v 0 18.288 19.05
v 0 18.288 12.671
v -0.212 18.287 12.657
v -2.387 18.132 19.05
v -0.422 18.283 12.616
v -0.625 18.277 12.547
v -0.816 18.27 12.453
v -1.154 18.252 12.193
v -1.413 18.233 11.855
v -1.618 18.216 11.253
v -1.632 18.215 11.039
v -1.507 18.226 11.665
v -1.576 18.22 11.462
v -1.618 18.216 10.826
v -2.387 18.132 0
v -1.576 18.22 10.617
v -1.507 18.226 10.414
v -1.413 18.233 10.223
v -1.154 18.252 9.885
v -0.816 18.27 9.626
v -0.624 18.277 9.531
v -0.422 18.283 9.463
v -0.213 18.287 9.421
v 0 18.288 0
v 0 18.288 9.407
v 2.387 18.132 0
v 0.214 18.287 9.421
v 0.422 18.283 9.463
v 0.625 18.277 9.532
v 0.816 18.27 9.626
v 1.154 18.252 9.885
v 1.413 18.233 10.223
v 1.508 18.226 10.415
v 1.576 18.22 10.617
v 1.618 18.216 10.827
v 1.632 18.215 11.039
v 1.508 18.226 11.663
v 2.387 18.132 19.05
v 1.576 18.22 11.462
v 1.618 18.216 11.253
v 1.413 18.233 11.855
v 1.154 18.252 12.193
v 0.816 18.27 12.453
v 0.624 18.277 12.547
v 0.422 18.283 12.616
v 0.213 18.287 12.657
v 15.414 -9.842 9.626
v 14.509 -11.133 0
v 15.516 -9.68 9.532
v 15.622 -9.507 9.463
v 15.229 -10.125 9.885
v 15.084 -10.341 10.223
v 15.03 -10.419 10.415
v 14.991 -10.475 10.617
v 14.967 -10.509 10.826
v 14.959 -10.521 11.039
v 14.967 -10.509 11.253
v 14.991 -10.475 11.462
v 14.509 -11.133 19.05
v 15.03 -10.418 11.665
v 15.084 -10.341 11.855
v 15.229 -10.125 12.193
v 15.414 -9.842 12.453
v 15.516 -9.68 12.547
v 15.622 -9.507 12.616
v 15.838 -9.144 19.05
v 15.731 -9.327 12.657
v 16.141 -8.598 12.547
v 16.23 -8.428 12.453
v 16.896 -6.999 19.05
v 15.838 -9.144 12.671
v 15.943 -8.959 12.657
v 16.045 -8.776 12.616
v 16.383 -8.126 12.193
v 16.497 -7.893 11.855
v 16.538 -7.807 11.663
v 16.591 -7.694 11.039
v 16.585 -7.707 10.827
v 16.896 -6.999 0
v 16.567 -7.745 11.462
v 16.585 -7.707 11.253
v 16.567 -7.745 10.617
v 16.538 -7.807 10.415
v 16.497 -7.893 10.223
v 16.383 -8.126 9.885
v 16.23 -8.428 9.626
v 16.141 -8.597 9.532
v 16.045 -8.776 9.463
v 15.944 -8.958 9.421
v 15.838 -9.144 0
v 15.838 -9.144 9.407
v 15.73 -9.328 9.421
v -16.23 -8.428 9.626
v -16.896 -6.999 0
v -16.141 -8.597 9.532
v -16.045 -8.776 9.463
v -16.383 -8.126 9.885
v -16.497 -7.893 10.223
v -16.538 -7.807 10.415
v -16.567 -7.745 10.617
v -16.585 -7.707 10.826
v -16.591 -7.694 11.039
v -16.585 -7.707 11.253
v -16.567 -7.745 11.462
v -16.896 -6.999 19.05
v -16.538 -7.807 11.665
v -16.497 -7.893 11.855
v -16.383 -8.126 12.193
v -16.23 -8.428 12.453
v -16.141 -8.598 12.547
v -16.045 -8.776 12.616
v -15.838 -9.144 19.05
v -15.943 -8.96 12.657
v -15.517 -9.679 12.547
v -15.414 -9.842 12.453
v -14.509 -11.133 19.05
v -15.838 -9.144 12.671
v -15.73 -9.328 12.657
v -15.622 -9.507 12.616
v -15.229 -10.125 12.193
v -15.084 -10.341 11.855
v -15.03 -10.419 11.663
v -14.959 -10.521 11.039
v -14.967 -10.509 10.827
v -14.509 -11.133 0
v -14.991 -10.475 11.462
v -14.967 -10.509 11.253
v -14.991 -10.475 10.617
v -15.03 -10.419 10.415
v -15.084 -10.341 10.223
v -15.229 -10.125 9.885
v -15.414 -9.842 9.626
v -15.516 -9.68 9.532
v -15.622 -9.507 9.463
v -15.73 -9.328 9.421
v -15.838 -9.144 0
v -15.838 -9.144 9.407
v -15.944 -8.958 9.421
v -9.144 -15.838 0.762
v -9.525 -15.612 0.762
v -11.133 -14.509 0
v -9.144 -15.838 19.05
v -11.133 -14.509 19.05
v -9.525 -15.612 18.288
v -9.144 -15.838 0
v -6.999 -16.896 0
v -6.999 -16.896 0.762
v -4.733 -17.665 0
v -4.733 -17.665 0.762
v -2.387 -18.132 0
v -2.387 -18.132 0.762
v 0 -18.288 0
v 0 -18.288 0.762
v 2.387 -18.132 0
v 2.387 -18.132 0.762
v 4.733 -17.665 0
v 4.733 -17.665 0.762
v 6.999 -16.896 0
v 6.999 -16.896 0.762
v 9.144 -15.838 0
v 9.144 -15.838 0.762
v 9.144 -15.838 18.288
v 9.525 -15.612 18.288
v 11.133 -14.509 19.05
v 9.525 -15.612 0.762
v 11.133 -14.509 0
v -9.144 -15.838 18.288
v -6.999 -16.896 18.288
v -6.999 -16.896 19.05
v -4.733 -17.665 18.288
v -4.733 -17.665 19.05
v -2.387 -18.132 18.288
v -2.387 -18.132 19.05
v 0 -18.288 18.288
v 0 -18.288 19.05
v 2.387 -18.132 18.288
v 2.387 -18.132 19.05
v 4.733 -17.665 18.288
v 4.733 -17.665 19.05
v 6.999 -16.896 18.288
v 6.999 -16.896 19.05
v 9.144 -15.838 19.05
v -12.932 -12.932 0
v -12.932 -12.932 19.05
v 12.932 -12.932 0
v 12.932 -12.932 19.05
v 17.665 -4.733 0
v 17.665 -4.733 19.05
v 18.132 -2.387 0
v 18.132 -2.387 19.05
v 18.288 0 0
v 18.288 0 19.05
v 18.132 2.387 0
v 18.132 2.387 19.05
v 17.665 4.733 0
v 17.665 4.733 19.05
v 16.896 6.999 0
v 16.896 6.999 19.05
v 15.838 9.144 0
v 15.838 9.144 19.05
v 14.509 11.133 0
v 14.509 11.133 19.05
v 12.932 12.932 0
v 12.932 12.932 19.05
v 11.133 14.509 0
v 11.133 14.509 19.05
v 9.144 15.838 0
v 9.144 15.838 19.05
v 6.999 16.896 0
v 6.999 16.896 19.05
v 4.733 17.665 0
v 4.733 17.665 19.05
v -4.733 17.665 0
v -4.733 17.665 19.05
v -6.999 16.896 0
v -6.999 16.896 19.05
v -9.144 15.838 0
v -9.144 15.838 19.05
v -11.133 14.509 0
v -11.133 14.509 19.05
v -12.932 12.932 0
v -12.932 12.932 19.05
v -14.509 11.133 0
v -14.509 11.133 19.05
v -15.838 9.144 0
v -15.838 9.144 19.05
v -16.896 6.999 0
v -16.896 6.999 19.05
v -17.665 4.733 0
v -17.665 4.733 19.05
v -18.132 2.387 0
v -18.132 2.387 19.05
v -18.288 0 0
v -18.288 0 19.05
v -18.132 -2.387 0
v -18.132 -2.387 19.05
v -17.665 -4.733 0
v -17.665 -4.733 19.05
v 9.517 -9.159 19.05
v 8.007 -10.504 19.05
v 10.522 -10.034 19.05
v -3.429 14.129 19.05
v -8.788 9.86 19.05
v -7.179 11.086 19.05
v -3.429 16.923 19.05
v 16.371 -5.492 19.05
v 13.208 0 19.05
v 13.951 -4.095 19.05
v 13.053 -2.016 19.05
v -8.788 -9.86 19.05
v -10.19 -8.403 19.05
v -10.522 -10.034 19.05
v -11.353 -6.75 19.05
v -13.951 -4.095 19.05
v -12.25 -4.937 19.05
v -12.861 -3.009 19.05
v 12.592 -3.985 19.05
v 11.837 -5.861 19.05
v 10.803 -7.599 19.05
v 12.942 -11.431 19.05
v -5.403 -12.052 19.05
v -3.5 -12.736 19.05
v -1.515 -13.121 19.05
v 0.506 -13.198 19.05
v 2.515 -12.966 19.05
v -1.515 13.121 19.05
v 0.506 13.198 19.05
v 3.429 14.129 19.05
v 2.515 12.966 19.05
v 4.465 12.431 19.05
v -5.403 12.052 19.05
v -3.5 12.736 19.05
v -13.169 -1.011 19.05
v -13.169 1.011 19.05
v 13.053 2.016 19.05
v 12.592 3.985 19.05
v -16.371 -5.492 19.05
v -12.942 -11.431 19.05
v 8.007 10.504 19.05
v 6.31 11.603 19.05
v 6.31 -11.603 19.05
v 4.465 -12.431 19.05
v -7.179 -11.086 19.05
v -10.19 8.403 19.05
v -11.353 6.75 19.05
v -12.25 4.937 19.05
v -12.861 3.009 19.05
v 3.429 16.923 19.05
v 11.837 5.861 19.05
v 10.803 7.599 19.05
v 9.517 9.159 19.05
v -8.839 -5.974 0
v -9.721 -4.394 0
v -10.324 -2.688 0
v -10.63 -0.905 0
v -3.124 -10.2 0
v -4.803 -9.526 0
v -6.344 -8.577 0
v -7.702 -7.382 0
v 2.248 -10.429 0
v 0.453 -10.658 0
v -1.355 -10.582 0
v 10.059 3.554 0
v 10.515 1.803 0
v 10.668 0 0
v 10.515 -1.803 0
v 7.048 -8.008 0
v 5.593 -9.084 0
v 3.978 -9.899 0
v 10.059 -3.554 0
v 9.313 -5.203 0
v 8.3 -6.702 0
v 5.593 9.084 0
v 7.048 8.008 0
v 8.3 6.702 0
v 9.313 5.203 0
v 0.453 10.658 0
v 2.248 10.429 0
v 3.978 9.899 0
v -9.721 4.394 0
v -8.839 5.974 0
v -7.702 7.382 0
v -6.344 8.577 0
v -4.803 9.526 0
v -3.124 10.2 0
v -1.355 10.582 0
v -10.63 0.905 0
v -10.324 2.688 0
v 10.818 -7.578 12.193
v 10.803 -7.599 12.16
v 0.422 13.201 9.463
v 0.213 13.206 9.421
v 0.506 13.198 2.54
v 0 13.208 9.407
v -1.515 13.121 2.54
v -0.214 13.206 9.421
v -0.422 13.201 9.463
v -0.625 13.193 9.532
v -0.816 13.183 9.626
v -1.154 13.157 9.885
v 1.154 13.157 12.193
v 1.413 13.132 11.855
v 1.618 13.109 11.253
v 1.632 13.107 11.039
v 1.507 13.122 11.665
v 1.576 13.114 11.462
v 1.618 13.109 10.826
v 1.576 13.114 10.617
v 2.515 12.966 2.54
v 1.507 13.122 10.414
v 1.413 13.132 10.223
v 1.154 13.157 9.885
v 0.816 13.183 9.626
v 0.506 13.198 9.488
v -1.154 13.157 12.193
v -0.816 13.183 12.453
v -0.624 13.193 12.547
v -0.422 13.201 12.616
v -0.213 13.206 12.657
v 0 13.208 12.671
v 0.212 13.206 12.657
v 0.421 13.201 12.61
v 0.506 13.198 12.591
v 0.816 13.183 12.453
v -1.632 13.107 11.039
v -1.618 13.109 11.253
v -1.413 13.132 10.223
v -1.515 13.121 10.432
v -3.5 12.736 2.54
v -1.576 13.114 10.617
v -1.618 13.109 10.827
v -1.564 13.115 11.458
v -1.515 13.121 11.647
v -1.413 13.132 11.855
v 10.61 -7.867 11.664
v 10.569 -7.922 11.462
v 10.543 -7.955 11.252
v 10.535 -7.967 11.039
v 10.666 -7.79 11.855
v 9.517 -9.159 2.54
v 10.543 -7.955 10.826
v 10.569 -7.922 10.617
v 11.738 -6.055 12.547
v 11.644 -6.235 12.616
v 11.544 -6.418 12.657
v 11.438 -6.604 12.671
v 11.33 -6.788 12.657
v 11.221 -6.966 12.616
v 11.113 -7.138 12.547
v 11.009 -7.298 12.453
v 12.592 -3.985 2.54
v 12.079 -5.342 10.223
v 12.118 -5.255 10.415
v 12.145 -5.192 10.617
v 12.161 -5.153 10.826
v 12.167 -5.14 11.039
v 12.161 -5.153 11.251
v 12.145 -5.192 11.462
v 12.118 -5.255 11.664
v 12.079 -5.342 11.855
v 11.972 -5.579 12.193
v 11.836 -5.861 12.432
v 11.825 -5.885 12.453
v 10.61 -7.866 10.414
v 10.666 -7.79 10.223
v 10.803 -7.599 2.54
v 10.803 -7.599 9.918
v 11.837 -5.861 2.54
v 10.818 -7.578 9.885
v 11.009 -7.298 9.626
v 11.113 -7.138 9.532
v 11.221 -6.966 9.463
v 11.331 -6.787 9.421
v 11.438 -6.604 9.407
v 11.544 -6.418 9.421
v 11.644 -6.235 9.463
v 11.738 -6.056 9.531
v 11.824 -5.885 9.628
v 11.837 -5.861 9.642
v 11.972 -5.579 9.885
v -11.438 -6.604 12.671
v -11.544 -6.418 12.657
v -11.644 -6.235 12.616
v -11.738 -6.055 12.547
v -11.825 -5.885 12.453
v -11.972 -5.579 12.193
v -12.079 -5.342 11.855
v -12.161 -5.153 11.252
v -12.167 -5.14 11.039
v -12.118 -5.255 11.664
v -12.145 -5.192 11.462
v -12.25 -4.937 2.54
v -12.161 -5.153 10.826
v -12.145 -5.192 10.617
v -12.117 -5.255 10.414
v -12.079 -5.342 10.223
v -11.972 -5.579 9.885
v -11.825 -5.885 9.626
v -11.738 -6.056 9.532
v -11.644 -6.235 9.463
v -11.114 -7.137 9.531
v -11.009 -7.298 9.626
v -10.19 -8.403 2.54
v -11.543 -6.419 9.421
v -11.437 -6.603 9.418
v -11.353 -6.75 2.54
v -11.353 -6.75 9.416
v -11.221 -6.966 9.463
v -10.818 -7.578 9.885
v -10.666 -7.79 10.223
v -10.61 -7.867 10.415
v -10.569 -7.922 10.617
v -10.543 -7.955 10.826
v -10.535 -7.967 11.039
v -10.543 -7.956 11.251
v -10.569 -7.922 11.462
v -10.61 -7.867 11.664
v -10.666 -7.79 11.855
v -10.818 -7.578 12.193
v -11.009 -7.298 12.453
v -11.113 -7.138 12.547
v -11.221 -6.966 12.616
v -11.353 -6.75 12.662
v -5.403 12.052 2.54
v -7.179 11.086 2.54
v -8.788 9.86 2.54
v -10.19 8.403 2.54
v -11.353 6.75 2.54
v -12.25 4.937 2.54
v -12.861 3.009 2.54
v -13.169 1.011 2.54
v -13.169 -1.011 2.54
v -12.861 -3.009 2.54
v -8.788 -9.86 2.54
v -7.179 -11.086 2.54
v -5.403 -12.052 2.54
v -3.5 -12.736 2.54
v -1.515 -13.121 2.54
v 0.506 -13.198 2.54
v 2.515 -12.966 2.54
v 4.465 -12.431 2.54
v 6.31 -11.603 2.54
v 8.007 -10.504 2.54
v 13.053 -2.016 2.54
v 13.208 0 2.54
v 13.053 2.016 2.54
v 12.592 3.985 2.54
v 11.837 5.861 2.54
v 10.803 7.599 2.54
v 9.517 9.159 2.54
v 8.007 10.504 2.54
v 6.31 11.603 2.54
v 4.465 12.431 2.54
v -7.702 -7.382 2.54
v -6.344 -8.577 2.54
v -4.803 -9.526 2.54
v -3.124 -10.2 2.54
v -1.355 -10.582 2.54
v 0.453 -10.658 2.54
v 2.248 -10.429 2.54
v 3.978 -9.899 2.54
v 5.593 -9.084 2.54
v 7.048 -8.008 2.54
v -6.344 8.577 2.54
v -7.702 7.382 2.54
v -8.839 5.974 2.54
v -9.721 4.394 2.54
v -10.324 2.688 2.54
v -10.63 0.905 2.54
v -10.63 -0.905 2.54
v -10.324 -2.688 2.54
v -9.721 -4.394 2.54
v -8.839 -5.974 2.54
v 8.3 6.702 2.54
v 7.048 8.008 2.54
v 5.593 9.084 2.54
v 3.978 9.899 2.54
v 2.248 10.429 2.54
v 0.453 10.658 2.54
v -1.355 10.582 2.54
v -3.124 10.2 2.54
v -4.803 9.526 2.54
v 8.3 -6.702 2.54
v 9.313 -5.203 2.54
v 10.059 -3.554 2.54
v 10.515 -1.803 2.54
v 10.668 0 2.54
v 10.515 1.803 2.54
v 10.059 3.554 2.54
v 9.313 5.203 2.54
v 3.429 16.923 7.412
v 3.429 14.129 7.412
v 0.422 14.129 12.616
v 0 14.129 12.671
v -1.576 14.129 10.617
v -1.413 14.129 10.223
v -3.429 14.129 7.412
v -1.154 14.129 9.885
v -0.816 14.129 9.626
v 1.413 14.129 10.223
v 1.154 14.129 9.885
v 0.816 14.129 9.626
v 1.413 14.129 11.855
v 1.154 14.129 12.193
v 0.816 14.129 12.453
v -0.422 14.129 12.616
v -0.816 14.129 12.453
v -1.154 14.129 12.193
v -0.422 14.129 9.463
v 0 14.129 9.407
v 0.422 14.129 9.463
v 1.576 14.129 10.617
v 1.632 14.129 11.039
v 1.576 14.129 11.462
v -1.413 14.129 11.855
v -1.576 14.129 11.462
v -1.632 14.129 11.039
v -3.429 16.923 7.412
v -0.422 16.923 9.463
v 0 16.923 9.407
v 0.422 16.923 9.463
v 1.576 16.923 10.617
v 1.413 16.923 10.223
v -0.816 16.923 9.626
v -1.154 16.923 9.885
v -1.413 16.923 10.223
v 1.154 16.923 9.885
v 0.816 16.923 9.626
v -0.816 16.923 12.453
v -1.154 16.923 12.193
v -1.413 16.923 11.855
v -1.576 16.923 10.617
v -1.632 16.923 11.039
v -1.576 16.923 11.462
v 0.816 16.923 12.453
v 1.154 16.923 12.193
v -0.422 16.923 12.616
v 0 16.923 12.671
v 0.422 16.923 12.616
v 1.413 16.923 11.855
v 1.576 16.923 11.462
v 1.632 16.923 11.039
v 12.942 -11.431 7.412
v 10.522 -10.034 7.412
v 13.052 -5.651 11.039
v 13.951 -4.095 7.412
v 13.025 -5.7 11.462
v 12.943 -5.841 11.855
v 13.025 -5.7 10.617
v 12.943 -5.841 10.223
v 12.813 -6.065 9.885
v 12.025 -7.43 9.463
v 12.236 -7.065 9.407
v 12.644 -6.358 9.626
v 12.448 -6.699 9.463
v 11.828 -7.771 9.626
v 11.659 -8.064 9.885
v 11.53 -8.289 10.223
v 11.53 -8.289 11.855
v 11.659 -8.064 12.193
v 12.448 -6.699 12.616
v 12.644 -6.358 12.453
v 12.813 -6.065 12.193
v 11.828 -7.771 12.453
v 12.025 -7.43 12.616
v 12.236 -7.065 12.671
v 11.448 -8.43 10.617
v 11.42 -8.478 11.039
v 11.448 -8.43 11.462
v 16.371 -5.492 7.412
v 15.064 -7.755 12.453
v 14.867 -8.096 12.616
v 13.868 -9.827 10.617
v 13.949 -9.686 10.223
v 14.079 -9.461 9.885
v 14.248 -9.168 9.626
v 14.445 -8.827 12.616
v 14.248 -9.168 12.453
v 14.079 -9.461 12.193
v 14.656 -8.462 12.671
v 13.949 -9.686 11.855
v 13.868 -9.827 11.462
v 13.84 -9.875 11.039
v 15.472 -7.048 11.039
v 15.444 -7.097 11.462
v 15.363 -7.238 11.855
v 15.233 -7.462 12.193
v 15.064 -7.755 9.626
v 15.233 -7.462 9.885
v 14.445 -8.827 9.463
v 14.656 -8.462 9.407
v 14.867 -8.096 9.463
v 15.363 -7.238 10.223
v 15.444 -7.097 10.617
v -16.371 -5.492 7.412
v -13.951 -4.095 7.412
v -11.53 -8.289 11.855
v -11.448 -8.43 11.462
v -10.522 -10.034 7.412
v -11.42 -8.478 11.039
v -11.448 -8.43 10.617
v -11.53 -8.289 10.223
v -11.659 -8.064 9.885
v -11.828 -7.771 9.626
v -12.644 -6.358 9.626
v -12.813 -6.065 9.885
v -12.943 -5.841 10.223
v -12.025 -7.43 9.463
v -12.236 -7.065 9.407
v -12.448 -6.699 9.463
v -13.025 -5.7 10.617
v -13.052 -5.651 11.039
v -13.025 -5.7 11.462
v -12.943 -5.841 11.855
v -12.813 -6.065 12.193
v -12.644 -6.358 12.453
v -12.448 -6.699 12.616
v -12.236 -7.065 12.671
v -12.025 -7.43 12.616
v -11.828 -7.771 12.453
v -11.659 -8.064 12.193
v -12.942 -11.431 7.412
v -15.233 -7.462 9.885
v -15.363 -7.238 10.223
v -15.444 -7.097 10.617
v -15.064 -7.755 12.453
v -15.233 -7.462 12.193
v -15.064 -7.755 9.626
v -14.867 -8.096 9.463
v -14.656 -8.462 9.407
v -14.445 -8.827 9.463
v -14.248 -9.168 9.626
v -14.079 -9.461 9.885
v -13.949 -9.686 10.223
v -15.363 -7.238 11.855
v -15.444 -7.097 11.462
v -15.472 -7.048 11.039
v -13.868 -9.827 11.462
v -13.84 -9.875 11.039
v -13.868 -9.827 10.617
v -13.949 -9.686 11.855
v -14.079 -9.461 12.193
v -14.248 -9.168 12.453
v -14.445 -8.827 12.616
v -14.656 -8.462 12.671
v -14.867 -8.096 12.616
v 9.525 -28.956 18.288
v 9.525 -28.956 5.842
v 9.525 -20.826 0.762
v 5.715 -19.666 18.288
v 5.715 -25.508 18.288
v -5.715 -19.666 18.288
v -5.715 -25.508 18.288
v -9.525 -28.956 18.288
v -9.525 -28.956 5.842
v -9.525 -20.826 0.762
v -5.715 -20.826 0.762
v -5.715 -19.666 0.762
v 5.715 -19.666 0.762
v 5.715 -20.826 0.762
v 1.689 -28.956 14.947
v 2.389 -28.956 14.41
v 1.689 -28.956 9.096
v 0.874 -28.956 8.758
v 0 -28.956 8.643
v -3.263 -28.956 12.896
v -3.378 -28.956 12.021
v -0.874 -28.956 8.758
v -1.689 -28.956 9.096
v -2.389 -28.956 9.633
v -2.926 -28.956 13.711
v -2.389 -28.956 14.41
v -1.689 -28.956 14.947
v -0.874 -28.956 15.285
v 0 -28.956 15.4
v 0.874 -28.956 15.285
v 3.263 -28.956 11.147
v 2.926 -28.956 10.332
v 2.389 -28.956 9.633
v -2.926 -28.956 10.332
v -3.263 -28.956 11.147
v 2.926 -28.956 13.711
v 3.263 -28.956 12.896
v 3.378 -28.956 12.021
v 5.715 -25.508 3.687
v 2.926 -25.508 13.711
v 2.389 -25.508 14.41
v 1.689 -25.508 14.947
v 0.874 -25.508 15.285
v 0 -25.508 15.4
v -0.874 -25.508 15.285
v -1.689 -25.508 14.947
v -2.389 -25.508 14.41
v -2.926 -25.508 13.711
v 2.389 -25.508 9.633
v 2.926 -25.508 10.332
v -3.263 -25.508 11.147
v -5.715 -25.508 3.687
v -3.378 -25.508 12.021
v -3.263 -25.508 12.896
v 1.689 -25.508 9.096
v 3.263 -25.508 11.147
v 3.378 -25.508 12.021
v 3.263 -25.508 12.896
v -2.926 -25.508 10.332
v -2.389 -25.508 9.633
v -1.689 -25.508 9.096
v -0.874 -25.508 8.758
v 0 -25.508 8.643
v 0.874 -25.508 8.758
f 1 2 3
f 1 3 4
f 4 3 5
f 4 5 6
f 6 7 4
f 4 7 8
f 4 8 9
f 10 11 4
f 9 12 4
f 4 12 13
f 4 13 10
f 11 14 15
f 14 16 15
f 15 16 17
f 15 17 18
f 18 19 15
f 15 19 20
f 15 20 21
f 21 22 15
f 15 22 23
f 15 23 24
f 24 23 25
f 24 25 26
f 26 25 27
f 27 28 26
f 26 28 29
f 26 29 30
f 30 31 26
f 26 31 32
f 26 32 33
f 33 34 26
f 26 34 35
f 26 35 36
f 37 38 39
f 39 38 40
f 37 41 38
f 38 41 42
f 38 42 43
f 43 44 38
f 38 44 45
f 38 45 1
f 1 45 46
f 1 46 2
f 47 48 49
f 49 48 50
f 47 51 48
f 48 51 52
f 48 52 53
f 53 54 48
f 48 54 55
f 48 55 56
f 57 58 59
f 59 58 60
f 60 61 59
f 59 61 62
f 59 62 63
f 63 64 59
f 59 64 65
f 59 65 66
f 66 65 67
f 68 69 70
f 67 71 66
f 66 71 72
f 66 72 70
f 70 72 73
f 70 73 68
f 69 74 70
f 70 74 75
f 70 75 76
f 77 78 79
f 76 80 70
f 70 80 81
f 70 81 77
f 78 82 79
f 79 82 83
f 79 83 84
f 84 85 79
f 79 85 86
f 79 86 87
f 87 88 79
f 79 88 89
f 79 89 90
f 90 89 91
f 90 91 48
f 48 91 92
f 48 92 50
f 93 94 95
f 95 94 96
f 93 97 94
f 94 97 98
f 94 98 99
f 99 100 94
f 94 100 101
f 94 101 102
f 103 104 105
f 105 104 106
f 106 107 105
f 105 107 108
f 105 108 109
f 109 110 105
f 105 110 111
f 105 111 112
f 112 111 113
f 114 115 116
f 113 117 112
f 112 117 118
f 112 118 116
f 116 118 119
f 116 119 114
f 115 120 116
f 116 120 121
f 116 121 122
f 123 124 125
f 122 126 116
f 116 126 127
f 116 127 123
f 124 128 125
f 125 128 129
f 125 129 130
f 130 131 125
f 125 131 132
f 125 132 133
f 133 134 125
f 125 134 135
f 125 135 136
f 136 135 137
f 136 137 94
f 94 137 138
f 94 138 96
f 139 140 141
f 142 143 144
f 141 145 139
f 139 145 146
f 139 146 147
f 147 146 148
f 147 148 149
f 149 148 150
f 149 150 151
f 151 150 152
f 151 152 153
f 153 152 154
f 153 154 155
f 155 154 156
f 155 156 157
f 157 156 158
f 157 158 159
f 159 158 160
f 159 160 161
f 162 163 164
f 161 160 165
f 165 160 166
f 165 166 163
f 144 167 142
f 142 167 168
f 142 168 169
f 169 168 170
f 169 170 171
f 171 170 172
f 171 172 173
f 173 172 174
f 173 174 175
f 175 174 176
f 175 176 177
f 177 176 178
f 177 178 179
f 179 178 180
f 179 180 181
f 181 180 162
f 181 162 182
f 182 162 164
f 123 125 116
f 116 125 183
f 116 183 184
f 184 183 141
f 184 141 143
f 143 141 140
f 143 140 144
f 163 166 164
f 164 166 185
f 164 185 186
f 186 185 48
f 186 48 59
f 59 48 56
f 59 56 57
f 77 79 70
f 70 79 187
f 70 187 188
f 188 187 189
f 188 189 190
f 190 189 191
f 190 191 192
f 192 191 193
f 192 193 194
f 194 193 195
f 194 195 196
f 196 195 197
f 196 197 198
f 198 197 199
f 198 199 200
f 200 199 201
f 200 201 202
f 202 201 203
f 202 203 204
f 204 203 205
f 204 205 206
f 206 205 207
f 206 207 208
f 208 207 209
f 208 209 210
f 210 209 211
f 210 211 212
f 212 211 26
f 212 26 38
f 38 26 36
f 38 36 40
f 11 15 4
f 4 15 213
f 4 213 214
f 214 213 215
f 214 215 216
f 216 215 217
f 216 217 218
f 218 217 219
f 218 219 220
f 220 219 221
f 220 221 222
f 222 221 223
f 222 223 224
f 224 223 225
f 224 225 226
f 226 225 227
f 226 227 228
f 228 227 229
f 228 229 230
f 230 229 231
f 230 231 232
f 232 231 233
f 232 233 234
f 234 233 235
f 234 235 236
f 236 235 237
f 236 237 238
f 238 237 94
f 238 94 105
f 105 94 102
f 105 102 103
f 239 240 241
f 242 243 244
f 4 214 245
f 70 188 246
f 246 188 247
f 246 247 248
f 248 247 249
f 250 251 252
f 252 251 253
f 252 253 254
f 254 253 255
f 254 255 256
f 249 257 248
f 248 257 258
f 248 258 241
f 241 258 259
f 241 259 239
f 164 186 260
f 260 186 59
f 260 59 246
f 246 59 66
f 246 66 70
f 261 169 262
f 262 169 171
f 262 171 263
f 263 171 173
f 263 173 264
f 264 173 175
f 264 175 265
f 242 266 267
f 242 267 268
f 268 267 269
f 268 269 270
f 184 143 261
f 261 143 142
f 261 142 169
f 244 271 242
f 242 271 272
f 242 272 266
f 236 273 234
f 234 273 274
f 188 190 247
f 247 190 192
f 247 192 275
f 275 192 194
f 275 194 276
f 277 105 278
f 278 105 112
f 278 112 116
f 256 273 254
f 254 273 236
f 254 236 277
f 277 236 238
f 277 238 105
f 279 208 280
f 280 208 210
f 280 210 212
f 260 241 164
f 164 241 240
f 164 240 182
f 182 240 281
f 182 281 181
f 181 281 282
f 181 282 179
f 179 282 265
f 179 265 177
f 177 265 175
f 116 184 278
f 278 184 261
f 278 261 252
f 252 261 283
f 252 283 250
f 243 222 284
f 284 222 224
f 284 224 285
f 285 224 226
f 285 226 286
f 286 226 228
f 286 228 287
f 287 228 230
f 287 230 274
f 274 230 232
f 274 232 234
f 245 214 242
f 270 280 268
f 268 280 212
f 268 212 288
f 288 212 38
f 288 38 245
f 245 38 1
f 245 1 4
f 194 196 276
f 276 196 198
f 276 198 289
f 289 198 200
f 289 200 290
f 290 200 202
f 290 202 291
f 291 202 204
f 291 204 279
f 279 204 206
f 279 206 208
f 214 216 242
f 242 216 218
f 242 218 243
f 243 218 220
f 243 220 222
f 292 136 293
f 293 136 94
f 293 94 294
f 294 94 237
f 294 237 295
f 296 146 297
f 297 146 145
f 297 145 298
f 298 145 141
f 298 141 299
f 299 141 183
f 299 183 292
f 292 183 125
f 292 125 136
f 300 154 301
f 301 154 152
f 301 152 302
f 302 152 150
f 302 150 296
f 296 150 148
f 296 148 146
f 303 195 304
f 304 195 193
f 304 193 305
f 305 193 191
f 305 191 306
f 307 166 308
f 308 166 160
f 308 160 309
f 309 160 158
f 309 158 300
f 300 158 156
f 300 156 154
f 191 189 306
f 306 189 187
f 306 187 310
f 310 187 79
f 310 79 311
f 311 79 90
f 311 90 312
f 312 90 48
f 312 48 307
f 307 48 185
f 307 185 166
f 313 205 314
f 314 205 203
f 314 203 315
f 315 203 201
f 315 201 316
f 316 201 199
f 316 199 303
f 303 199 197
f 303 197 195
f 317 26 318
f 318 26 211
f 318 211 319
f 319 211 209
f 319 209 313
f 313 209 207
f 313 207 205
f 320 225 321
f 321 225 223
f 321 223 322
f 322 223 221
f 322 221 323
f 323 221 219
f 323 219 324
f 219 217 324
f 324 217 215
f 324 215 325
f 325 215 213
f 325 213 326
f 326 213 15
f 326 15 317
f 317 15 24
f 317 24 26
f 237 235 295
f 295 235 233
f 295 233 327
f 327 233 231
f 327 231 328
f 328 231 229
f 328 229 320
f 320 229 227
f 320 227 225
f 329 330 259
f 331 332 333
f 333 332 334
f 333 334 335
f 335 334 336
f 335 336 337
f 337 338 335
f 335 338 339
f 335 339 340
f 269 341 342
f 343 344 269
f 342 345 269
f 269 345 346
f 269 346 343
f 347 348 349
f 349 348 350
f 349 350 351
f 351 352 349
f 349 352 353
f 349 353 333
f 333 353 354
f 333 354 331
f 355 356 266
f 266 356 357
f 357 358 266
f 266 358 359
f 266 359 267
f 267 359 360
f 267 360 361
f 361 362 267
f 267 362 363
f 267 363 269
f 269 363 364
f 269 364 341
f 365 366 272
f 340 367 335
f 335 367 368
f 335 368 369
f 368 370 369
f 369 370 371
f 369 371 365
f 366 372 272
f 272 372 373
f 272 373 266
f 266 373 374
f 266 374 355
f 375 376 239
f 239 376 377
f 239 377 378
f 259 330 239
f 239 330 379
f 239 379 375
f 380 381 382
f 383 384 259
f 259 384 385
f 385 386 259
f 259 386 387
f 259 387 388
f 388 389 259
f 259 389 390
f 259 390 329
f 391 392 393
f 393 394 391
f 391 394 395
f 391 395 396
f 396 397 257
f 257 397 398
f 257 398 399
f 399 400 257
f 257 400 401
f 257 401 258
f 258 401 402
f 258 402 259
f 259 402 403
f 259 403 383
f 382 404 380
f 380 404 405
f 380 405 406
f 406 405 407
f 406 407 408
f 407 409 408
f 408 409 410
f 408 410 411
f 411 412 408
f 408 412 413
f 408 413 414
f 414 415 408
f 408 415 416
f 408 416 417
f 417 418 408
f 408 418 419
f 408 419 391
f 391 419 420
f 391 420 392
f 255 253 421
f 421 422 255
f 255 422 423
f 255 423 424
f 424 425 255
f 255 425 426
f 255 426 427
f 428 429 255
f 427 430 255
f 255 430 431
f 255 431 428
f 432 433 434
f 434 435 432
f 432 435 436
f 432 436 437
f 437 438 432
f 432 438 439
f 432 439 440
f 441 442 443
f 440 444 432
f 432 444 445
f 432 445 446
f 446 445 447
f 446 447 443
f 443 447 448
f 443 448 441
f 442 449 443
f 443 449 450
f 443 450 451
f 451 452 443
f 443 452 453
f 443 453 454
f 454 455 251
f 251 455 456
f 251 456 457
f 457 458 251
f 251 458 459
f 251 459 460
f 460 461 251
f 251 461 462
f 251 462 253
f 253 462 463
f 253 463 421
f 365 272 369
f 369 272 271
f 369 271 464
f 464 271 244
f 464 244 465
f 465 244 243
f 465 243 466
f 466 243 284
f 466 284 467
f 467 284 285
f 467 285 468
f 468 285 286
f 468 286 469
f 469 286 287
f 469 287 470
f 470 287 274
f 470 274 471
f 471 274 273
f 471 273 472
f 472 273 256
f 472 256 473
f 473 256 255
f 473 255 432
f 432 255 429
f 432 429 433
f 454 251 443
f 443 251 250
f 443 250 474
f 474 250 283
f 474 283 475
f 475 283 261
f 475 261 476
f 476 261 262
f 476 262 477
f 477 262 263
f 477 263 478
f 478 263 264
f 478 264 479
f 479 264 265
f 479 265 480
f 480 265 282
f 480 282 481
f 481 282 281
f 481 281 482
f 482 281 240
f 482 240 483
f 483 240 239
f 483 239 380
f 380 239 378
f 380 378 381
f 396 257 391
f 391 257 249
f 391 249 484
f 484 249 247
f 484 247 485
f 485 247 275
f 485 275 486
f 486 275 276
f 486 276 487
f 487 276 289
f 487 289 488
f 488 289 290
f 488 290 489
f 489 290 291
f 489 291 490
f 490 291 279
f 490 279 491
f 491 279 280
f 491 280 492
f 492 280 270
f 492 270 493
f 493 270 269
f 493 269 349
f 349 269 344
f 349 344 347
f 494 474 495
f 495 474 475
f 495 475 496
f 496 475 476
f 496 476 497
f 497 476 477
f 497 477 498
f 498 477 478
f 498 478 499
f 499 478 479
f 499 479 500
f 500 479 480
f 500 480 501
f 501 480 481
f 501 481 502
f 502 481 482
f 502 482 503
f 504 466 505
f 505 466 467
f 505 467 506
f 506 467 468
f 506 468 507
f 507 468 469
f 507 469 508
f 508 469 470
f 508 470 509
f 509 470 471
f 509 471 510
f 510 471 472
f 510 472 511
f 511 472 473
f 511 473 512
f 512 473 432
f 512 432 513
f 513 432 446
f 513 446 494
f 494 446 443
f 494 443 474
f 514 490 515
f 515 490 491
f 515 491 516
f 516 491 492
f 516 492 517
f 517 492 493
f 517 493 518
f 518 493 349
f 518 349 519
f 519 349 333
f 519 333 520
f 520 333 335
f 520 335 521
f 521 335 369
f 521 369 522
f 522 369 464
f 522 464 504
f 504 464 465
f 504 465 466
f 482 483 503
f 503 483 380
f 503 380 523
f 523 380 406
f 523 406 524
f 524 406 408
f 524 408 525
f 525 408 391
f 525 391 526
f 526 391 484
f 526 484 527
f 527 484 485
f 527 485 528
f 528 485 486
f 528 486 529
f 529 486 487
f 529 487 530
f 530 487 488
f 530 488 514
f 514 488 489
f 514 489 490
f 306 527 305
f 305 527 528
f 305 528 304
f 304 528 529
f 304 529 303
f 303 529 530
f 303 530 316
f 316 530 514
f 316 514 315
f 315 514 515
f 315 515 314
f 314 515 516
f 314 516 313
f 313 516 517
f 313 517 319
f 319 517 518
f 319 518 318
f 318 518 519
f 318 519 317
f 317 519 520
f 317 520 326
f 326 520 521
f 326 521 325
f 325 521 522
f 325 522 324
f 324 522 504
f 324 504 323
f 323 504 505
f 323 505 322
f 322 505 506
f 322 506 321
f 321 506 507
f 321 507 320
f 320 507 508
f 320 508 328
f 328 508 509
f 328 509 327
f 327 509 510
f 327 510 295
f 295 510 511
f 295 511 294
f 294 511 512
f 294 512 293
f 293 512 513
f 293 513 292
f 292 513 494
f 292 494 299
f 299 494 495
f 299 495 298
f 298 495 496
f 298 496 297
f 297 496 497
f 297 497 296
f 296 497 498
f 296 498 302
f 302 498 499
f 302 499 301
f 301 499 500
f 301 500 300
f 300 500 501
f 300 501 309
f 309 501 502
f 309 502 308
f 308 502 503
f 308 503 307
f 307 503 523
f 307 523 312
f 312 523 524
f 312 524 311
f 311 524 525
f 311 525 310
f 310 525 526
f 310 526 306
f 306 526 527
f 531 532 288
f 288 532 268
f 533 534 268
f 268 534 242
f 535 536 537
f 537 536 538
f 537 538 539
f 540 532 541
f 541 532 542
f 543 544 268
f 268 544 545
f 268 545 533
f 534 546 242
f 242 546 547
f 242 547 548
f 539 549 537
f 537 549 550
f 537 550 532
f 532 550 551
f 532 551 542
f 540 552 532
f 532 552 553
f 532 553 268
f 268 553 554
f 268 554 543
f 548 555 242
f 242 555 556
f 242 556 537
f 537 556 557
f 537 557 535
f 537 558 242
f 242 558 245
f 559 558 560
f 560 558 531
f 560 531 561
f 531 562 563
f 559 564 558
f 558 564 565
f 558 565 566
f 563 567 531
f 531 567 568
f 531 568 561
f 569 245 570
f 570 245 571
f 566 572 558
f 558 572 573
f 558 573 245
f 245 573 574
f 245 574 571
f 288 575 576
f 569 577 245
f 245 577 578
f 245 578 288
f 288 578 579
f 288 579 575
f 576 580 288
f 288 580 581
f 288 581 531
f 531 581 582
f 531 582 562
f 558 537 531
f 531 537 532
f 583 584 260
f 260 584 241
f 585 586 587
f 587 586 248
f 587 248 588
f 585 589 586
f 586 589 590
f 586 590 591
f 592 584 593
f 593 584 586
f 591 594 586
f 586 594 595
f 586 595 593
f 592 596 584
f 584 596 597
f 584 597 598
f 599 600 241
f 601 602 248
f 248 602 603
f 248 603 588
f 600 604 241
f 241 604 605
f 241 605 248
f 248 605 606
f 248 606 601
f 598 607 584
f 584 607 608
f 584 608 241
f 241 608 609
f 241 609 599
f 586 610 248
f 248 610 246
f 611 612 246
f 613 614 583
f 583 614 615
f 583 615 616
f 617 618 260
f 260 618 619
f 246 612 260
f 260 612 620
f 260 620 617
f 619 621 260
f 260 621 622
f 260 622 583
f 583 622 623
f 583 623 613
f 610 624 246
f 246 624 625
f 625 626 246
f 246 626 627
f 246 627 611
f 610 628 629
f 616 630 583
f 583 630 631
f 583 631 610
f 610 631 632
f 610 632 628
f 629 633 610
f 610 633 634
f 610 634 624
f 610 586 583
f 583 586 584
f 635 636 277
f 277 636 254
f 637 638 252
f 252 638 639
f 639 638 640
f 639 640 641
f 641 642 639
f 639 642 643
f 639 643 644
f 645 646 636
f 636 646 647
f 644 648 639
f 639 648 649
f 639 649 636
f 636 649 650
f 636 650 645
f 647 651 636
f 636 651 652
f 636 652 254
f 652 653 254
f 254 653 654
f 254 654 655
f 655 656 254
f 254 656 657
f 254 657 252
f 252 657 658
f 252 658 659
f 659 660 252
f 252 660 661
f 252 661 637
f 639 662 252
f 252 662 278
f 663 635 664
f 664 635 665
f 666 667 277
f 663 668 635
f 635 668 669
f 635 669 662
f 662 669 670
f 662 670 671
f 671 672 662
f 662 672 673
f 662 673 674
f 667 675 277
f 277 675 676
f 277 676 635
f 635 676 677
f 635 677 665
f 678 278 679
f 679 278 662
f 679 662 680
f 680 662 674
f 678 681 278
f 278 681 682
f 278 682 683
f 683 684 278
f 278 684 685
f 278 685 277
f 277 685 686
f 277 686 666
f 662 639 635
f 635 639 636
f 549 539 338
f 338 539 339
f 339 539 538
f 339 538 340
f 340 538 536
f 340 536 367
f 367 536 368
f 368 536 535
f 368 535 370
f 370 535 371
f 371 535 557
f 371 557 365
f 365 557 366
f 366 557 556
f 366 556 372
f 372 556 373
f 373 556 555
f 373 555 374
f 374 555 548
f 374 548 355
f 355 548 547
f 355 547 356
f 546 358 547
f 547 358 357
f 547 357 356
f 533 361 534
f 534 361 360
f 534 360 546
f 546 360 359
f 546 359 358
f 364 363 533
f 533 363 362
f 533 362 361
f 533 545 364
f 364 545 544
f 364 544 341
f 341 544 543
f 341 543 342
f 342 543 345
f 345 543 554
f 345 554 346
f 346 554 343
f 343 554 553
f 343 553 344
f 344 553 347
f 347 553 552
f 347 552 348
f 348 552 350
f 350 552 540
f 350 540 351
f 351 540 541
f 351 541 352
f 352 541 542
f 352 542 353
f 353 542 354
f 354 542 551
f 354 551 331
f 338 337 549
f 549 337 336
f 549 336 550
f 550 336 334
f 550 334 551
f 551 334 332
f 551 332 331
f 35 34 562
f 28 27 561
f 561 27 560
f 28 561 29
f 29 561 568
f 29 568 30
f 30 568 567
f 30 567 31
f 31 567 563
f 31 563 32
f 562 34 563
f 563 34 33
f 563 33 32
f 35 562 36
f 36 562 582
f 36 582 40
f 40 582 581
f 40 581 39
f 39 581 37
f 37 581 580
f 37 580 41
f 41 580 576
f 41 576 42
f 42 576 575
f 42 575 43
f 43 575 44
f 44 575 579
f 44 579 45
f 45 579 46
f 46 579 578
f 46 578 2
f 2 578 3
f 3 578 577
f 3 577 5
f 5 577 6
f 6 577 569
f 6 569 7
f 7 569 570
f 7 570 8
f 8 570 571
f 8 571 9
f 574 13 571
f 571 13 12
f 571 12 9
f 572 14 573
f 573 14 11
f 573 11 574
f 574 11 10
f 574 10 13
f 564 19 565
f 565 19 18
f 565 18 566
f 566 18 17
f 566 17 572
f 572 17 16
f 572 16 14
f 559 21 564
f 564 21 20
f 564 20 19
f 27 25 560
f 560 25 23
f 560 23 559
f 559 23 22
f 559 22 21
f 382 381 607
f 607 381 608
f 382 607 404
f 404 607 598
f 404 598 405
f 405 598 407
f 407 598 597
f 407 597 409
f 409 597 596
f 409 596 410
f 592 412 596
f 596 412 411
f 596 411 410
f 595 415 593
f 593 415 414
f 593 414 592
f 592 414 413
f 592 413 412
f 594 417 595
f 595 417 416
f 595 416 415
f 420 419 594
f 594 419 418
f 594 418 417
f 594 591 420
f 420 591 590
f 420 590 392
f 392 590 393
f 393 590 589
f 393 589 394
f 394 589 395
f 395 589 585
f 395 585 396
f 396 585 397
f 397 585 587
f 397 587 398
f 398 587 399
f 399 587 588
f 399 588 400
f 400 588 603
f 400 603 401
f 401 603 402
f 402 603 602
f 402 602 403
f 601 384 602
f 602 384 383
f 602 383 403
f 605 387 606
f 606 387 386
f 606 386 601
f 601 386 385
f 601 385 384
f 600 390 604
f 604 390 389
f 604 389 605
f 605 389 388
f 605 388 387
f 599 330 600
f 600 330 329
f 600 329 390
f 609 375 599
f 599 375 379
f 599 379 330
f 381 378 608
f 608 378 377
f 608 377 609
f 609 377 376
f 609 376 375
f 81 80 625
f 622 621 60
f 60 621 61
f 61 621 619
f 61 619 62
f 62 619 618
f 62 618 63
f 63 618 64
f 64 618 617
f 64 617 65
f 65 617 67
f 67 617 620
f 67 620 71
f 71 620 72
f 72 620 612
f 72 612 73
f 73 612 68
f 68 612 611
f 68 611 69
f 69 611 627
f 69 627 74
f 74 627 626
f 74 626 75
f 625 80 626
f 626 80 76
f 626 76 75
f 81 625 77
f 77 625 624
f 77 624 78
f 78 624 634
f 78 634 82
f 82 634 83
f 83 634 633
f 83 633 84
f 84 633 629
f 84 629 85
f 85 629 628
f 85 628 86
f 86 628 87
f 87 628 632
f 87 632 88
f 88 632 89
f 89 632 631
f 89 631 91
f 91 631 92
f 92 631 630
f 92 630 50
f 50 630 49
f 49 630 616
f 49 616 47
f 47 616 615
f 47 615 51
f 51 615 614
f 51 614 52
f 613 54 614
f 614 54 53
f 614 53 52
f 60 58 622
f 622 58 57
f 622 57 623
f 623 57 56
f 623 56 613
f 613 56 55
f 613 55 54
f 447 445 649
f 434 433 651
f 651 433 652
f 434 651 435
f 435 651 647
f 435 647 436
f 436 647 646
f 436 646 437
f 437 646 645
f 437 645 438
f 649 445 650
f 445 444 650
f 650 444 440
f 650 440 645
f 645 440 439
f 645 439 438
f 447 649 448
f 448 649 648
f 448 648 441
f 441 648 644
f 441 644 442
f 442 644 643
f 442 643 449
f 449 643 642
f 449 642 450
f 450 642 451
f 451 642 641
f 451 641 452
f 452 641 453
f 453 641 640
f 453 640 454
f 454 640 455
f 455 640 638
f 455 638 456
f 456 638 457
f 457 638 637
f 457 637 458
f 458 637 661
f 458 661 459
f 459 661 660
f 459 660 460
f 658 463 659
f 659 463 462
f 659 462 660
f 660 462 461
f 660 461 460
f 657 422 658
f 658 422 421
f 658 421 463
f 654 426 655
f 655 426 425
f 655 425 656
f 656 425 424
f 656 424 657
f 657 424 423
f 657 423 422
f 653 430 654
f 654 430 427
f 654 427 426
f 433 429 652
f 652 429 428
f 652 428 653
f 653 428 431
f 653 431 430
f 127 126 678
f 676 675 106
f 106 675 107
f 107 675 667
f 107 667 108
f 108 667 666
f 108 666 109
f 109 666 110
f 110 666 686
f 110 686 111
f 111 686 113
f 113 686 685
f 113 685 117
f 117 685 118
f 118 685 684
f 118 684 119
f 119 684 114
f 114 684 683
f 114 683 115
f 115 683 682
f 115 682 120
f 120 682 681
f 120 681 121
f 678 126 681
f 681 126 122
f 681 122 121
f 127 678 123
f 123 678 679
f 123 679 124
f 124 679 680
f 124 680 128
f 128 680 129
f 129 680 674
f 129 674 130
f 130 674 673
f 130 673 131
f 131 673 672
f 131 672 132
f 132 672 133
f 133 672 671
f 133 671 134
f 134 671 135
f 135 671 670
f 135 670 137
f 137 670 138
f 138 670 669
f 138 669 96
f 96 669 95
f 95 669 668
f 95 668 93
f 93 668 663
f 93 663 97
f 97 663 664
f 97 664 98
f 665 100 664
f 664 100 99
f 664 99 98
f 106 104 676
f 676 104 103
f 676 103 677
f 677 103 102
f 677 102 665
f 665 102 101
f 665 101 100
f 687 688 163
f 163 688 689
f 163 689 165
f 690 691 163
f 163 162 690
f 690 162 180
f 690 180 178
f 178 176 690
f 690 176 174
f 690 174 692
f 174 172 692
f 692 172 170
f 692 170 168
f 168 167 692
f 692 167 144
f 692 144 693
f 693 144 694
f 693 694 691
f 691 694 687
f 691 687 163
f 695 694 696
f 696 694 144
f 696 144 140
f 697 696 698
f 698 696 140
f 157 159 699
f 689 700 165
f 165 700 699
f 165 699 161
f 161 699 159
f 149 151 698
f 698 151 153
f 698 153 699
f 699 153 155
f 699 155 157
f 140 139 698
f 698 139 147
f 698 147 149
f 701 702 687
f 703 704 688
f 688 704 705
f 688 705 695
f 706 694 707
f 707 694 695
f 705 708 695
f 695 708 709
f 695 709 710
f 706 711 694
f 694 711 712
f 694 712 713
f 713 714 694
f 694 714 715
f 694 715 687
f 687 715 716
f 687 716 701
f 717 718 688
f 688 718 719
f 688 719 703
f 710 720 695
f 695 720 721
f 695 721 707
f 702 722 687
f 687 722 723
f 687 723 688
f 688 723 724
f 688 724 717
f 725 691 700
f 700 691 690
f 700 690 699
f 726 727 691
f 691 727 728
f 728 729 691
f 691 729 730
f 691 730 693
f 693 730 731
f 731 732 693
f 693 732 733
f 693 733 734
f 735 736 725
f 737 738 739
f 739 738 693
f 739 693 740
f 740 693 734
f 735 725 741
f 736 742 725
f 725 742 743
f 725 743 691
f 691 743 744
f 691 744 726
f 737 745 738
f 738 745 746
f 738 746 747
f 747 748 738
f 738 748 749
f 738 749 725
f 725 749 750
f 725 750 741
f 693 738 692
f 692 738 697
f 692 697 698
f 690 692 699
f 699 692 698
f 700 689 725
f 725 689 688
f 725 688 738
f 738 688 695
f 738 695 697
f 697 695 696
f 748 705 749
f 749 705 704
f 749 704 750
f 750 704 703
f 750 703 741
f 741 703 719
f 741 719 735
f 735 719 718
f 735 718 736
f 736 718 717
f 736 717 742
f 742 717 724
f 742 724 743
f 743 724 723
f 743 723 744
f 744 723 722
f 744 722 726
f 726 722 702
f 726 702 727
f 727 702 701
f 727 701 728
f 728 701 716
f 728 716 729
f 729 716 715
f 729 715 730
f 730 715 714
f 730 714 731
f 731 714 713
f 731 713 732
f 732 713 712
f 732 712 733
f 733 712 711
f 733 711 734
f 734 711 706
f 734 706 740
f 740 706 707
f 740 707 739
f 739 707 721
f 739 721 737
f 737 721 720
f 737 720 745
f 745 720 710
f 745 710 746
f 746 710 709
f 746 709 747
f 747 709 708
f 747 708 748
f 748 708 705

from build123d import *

# Parameters (mm, degrees)
SKETCH1_R                   = 18.288
BOSS_EXTRUDE1_DEPTH         = 19.05
SKETCH3_R                   = 13.208
CUT_EXTRUDE1_DEPTH          = 16.51
CUT_EXTRUDE2_REACH          = 32.684
SKETCH6_R                   = 10.668
SKETCH10_W                  = 6.858
SKETCH10_H                  = 2.794
CUT_EXTRUDE3_DEPTH          = 11.63828
CIRPATTERN1_COUNT           = 3
CIRPATTERN2_COUNT           = 3
SKETCH15_W                  = 19.05
SKETCH15_H                  = 17.526
BOSS_EXTRUDE3_DEPTH         = 15.24
SKETCH16_W                  = 11.43
SKETCH16_H                  = 5.842
CUT_EXTRUDE4_DEPTH          = 39.824629185
CHAMFER1_SIZE               = 8.129699408
CHAMFER1_SIZE_2             = 5.08
F_1_4_CLEARANCE_HOLE1_D     = 6.7564
F_1_4_CLEARANCE_HOLE1_DEPTH = 3.448428068


with BuildPart() as part:
    # Sketch1 → Boss-Extrude1 (new body)
    with BuildSketch(Plane.XY):
        with Locations(Location((0, 0, 0), (0, 0, 180))):
            Circle(SKETCH1_R)
    extrude(amount=BOSS_EXTRUDE1_DEPTH)

    # Sketch3 → Cut-Extrude1 (cut)
    with BuildSketch(Plane.XY.offset(19.05)):
        Circle(SKETCH3_R)
    extrude(amount=-CUT_EXTRUDE1_DEPTH, mode=Mode.SUBTRACT)

    # Sketch6 → Cut-Extrude2 (cut, up to next)
    with BuildSketch(Plane.XY.offset(2.54), mode=Mode.PRIVATE) as cut_extrude2_sk1:
        Circle(SKETCH6_R)
    cut_extrude2_tool1 = extrude(cut_extrude2_sk1.sketch, amount=-CUT_EXTRUDE2_REACH, mode=Mode.PRIVATE) & part.part
    add(cut_extrude2_tool1.solids().sort_by_distance((0, 0, 2.54))[0], mode=Mode.SUBTRACT)

    # Sketch10 → Cut-Extrude3 (cut)
    with BuildSketch(Plane.XY.offset(19.05)):
        with Locations((0, 15.526400014)):
            Rectangle(SKETCH10_W, SKETCH10_H)
    cut_extrude3 = extrude(amount=-CUT_EXTRUDE3_DEPTH, mode=Mode.SUBTRACT)

    # CirPattern1: Cut-Extrude3 ×3 about axis
    cirpattern1_axis = Axis((0, 0, 0), (0, 0, 1))
    for i in range(1, CIRPATTERN1_COUNT):
        add(cut_extrude3.rotate(cirpattern1_axis, i * 360 / CIRPATTERN1_COUNT), mode=Mode.SUBTRACT)

    # Sketch13 → #4 Clearance Hole1 (revolve, cut)
    with BuildSketch(Plane(origin=(0, 10.16, 11.039220548), x_dir=(0, 0, -1), z_dir=(1, 0, 0))):
        Polygon((0, 0), (0, 13.680574487), (1.63195, 12.7), (1.63195, 0), align=None)
    f_4_clearance_hole1 = revolve(axis=Axis((0, 3.81, 11.039220548), (0, 1, 0)), mode=Mode.SUBTRACT)

    # CirPattern2: #4 Clearance Hole1 ×3 about axis
    cirpattern2_axis = Axis((0, 0, 19.05), (0, 0, -1))
    for i in range(1, CIRPATTERN2_COUNT):
        add(f_4_clearance_hole1.rotate(cirpattern2_axis, i * 360 / CIRPATTERN2_COUNT), mode=Mode.SUBTRACT)

    # Sketch15 → Boss-Extrude3 (add)
    with BuildSketch(Plane(origin=(0, -13.716, 0), x_dir=(1, 0, 0), z_dir=(0, 1, 0))):
        with Locations((0, -9.525)):
            Rectangle(SKETCH15_W, SKETCH15_H)
    extrude(amount=-BOSS_EXTRUDE3_DEPTH)

    # Sketch16 → Cut-Extrude4 (cut, through all)
    with BuildSketch(Plane.XY.offset(18.288)):
        with Locations((0, -22.586571932)):
            Rectangle(SKETCH16_W, SKETCH16_H)
    extrude(amount=-CUT_EXTRUDE4_DEPTH, mode=Mode.SUBTRACT)

    # Chamfer1
    # the kernel refuses this chamfer: 8.129699408, 5.08 mm, written as the material it takes off along each edge
    with BuildSketch(Plane(origin=(-30.543101737, -28.956, 0.762), x_dir=(0, 0.9997899140358644, -0.020497019104217945), z_dir=(1, 0, 0))) as chamfer1_piece_1:
        Polygon((CHAMFER1_SIZE * 0.999789913978, CHAMFER1_SIZE * 0.020497019103), (-CHAMFER1_SIZE_2 * 0.0204970191042, CHAMFER1_SIZE_2 * 0.999789914036), (0, 0), align=None)
    extrude(amount=61.086203475, mode=Mode.SUBTRACT)

    # 1/4 Clearance Hole1
    with Locations(Plane(origin=(0, -28.956, 0), x_dir=(-1, 0, 0), z_dir=(0, -1, 0))):
        with Locations((0, -12.021417661)):
            Hole(F_1_4_CLEARANCE_HOLE1_D / 2, depth=F_1_4_CLEARANCE_HOLE1_DEPTH)


solid = part.part
